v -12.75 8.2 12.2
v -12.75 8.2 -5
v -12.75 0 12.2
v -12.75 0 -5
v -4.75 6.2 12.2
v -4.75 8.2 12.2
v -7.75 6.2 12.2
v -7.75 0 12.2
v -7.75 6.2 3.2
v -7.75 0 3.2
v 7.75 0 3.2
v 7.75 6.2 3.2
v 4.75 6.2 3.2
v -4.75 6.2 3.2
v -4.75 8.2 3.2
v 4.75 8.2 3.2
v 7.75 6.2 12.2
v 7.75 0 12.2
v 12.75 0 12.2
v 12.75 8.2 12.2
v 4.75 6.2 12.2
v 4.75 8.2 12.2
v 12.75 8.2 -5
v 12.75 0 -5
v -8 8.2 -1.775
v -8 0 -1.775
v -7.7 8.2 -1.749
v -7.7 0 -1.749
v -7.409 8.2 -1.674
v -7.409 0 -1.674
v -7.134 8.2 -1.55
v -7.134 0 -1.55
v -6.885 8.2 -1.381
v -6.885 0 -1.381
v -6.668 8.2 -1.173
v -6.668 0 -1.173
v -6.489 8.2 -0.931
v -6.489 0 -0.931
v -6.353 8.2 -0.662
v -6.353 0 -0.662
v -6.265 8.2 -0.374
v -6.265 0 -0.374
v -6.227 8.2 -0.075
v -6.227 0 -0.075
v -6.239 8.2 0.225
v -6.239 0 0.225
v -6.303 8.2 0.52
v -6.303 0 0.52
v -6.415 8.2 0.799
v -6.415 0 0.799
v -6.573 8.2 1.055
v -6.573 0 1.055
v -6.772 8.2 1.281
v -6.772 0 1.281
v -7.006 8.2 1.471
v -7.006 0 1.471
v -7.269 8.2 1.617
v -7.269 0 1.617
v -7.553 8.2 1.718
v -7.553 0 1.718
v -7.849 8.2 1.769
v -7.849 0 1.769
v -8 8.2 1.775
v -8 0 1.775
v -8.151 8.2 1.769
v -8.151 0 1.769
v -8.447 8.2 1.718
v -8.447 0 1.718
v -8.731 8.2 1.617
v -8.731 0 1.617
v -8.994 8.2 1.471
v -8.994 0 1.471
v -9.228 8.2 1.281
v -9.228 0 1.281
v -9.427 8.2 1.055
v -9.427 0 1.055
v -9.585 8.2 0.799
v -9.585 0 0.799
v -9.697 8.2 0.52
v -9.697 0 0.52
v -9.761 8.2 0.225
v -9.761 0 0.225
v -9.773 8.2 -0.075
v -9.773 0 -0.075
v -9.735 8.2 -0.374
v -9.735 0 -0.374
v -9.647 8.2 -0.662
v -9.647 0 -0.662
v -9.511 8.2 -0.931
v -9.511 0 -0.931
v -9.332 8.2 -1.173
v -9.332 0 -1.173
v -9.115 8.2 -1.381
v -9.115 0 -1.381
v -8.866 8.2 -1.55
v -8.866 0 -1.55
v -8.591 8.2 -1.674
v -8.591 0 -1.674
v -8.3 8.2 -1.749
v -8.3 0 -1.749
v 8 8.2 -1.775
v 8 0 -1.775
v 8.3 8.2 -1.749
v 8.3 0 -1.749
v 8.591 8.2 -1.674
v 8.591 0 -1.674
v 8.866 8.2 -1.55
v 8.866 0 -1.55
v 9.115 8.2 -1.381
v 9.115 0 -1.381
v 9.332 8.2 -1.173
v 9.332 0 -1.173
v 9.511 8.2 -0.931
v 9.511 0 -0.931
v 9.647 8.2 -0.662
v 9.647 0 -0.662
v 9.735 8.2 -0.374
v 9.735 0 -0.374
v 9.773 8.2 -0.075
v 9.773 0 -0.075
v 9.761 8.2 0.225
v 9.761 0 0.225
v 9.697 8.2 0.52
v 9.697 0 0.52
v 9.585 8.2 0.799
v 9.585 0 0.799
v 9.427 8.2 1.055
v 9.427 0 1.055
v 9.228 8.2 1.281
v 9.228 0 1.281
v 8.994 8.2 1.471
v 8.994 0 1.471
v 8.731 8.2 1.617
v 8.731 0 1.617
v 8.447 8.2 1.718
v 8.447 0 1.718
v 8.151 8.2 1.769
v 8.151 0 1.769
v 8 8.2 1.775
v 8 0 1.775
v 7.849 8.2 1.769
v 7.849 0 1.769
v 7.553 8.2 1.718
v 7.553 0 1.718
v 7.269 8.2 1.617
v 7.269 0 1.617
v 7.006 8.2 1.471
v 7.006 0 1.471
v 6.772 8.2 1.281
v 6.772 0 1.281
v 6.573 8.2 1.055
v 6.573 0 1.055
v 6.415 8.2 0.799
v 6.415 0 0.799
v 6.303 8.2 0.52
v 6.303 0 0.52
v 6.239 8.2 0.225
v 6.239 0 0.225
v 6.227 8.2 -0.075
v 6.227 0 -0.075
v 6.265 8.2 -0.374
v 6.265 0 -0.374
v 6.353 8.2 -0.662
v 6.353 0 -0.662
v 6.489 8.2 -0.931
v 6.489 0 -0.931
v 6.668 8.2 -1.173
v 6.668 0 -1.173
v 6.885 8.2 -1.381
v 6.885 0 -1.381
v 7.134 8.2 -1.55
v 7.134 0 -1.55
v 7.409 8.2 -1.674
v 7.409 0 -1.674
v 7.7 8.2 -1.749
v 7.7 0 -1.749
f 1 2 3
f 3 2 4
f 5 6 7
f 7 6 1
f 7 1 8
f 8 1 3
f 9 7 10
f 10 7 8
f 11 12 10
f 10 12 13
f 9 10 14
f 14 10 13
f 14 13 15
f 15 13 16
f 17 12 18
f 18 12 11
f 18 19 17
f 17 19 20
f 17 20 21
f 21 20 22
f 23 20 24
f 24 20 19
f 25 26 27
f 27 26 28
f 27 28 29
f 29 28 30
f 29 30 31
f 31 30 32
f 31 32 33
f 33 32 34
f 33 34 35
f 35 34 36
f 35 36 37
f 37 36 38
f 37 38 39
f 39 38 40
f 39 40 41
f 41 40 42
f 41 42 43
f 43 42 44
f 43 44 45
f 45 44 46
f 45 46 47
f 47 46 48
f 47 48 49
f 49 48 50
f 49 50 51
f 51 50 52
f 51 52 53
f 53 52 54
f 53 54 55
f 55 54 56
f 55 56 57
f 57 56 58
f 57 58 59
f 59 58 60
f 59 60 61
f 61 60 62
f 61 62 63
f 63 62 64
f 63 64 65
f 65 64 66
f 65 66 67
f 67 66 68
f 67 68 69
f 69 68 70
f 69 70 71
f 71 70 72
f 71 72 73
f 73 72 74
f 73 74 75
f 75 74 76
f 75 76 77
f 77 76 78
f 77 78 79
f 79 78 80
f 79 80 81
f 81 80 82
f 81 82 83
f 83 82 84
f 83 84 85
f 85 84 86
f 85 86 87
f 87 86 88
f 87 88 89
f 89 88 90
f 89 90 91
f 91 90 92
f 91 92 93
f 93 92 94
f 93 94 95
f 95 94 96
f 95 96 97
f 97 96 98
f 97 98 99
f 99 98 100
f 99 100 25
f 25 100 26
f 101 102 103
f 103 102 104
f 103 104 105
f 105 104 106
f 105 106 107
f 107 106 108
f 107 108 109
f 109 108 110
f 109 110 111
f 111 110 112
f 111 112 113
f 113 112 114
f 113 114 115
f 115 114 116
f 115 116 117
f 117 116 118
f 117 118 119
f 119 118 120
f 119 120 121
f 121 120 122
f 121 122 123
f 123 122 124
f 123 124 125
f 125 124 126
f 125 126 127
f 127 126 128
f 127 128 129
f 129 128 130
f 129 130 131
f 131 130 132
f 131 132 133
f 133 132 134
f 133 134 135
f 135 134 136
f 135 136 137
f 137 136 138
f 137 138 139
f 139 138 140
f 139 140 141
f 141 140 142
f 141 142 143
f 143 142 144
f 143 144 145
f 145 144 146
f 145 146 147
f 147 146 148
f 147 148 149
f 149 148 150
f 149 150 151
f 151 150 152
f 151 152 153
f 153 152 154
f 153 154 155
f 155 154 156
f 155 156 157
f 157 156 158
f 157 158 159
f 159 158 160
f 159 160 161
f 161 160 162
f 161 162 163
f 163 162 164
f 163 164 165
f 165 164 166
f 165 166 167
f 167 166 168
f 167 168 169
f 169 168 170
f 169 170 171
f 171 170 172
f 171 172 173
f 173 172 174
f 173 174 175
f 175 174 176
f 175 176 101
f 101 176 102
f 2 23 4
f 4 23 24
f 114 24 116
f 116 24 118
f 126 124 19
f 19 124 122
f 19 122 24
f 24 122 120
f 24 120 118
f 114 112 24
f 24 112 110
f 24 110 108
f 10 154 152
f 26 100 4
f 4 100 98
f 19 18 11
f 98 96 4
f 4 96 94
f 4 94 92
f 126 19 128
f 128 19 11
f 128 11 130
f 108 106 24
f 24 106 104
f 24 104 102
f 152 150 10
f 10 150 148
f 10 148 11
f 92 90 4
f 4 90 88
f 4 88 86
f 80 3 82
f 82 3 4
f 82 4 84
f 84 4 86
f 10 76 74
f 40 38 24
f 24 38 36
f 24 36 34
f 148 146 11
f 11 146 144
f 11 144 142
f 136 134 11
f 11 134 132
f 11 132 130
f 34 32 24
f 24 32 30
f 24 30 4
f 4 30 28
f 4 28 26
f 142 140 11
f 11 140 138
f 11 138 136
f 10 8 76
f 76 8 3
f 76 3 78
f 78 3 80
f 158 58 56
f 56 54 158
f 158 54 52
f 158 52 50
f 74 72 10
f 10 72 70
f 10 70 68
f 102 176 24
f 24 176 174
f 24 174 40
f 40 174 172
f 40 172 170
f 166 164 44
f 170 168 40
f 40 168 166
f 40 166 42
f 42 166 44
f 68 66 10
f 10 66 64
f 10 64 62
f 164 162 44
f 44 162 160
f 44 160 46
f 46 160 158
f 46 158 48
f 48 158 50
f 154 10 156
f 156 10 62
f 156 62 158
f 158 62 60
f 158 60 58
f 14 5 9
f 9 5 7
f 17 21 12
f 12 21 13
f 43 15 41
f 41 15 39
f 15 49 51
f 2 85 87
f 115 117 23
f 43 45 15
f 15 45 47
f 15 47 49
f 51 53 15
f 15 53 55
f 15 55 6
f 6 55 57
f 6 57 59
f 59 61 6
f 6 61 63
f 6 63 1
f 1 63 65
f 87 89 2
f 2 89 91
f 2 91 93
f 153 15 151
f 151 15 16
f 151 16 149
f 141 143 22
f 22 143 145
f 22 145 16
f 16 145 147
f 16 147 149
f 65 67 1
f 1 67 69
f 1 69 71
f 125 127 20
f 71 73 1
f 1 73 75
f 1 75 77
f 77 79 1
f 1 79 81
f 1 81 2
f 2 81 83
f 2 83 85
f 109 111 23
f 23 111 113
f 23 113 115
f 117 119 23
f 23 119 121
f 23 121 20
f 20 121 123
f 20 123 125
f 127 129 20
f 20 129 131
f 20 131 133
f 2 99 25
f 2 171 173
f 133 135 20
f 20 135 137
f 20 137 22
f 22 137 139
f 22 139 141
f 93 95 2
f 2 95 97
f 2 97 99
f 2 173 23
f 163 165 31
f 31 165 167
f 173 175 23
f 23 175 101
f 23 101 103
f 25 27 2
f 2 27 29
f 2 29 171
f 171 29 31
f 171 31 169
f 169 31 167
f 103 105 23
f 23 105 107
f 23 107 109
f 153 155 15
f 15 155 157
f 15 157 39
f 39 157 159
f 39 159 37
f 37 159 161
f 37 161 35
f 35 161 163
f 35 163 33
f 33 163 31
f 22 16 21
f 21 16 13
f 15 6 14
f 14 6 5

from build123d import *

# Parameters (mm, degrees)
SKETCH1_R           = 1.775
BOSS_EXTRUDE1_DEPTH = 6.2
BOSS_EXTRUDE2_START = 6.2
SKETCH1_3_R         = 1.775
BOSS_EXTRUDE2_DEPTH = 2


with BuildPart() as part:
    # Sketch1 → Boss-Extrude1 (new body)
    with BuildSketch(Plane(origin=(0, 0, 0), x_dir=(1, 0, 0), z_dir=(0, 1, 0))):
        Polygon((-12.75, 5), (12.75, 5), (12.75, -12.2), (7.75, -12.2), (7.75, -3.2), (-7.75, -3.2), (-7.75, -12.2), (-12.75, -12.2), align=None)
        with Locations(Location((-8, 0, 0), (0, 0, 90))):
            Circle(SKETCH1_R, mode=Mode.SUBTRACT)
        with Locations(Location((8, 0, 0), (0, 0, 90))):
            Circle(SKETCH1_R, mode=Mode.SUBTRACT)
    extrude(amount=BOSS_EXTRUDE1_DEPTH)

    # Sketch1<3> → Boss-Extrude2 (add)
    with BuildSketch(Plane(origin=(0, 0, 0), x_dir=(1, 0, 0), z_dir=(0, 1, 0)).offset(BOSS_EXTRUDE2_START)):
        Polygon((12.75, 5), (-12.75, 5), (-12.75, -12.2), (-4.75, -12.2), (-4.75, -3.2), (4.75, -3.2), (4.75, -12.2), (12.75, -12.2), align=None)
        with Locations(Location((-8, 0, 0), (0, 0, 90))):
            Circle(SKETCH1_3_R, mode=Mode.SUBTRACT)
        with Locations(Location((8, 0, 0), (0, 0, 90))):
            Circle(SKETCH1_3_R, mode=Mode.SUBTRACT)
    extrude(amount=BOSS_EXTRUDE2_DEPTH)


solid = part.part
